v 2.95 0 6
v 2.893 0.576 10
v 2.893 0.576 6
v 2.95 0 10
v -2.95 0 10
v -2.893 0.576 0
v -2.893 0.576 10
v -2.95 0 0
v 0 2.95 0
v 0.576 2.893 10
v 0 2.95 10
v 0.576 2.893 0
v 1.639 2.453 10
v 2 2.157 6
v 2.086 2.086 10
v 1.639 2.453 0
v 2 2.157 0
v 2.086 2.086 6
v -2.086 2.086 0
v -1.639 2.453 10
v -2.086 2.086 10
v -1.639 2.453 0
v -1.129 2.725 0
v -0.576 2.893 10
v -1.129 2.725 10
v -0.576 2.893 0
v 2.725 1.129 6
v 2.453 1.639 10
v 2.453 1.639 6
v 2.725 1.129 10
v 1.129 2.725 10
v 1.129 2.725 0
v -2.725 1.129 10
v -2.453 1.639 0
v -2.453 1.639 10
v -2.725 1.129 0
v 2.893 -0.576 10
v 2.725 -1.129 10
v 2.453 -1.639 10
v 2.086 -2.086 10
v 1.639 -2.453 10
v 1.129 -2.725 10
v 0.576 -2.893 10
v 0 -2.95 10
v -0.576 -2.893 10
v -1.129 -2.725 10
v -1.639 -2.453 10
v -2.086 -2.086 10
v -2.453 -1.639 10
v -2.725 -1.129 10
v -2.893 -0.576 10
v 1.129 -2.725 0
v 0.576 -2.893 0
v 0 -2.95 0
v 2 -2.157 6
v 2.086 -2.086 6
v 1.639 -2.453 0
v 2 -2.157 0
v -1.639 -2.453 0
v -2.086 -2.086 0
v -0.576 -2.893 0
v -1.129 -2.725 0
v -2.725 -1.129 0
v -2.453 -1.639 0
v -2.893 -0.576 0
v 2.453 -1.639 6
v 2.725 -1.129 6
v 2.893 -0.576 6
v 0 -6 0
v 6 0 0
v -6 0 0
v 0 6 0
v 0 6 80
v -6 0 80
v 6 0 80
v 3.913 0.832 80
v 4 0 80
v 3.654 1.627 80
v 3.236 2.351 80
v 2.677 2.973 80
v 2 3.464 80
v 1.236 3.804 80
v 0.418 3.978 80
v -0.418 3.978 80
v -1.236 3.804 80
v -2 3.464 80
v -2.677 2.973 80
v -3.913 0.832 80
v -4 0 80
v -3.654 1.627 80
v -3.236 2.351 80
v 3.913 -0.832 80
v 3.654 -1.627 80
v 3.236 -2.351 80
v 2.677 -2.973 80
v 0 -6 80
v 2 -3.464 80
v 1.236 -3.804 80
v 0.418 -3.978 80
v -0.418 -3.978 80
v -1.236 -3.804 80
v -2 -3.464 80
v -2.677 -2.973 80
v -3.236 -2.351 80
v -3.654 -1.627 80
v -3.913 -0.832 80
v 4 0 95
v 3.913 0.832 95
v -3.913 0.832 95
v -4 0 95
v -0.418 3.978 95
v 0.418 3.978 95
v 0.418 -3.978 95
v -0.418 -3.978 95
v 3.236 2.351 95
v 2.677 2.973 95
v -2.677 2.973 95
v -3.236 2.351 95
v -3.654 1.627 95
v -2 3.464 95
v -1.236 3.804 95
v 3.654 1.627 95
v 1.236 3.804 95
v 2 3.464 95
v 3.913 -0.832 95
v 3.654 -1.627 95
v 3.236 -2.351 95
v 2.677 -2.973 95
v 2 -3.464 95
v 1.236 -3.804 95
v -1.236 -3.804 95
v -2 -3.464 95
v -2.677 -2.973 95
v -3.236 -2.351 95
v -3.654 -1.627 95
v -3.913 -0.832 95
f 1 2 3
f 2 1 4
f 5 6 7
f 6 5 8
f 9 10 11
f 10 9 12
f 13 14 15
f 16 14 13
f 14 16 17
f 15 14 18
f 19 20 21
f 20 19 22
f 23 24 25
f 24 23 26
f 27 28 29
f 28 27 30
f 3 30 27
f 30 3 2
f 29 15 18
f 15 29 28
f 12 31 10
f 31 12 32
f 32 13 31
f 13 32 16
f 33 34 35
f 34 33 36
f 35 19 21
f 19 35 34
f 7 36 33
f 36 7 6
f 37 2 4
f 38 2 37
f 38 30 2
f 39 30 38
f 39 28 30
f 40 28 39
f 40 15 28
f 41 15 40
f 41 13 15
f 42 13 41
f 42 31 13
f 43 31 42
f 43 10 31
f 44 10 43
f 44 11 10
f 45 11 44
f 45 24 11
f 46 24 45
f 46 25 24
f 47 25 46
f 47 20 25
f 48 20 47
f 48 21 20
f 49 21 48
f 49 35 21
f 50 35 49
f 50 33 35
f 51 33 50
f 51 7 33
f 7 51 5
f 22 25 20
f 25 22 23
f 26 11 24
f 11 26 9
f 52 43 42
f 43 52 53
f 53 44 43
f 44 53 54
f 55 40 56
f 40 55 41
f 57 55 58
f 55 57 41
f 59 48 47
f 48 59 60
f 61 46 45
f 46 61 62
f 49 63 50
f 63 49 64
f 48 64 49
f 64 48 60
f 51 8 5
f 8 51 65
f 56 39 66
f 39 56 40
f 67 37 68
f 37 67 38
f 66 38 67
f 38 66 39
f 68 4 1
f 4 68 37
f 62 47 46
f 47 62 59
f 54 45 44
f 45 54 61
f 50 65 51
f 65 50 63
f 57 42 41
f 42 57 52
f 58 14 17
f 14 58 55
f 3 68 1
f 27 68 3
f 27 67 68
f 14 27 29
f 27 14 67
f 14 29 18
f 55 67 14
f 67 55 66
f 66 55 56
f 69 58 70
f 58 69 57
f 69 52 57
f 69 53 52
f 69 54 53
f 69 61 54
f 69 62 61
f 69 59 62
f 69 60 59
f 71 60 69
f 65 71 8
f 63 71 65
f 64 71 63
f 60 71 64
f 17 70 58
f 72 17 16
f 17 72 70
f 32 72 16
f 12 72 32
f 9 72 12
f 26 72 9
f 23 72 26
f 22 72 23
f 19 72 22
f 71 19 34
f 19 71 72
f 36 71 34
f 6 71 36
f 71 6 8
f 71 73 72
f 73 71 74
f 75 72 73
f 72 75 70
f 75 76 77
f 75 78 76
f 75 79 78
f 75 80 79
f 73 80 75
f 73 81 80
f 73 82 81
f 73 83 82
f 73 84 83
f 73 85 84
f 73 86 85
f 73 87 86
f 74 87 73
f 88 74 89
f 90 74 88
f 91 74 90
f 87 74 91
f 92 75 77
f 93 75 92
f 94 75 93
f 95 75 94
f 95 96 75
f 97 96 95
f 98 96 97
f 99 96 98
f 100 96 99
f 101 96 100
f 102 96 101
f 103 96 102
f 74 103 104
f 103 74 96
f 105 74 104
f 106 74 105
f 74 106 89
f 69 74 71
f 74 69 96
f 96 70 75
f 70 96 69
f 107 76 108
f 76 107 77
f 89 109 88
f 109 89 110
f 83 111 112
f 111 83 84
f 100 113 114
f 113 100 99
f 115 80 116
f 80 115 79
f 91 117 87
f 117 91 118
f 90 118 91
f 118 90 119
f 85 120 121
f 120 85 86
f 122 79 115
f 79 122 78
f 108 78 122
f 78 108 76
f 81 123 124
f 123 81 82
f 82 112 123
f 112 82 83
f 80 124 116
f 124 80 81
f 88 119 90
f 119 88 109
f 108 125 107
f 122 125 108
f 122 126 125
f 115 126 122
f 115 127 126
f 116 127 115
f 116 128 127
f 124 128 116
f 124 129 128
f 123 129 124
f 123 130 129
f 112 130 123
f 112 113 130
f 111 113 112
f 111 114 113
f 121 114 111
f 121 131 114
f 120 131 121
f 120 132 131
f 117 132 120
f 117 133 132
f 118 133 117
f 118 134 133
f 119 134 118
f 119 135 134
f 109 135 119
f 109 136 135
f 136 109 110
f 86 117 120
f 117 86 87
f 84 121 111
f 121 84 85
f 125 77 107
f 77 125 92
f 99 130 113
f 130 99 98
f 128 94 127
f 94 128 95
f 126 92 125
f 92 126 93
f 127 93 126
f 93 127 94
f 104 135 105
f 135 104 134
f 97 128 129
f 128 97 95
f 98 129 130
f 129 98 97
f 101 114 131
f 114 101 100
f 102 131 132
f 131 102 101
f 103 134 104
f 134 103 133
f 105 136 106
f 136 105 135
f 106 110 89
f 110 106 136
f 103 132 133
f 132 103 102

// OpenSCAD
// 28BYJ-48 from RGriffoGoes 
// at http://www.thingiverse.com/thing:204734
// named and measured dimensions, and
// added details by J.Beale 21 July 2014

MBH = 18.8;   // motor body height
MBD = 28.25;  // motor body OD


SHD = 5.9;   // motor shaft OD
SHDF = 4.0;   // motor shaft diameter, across flats
SHHF = 6.0;   // motor shaft flats height, or depth in from end
SHH = 9.75;   // height of shaft above motor body 




// =========================================================
eps = 0.05;   // small number to avoid coincident faces


module squres() {
    color("red") translate([(SHD+SHDF)/2,0,3]) 
   cube([SHD,SHD,SHHF], center = true)
    color("red") translate([-(SHD+SHDF)/2,0,3]) 
    cube([SHD,SHD,SHHF], center = true);
}


    

module motor() {
difference() {
    color("blue") cylinder(h = 20, r = SHD/2, center = true, $fn = 32); 
    squres();

        }



}   

module cylindertop() {
    translate([0,0,35])
       cylinder(h=60, r=4, $fn = 30); 

}


 module stack() {   
difference(){
   cylinder(h=80, r=6, $fn = 4); 
   motor();
}
}
stack();

difference() {
    cylindertop();
    stack();
    
  
 

}	

		
